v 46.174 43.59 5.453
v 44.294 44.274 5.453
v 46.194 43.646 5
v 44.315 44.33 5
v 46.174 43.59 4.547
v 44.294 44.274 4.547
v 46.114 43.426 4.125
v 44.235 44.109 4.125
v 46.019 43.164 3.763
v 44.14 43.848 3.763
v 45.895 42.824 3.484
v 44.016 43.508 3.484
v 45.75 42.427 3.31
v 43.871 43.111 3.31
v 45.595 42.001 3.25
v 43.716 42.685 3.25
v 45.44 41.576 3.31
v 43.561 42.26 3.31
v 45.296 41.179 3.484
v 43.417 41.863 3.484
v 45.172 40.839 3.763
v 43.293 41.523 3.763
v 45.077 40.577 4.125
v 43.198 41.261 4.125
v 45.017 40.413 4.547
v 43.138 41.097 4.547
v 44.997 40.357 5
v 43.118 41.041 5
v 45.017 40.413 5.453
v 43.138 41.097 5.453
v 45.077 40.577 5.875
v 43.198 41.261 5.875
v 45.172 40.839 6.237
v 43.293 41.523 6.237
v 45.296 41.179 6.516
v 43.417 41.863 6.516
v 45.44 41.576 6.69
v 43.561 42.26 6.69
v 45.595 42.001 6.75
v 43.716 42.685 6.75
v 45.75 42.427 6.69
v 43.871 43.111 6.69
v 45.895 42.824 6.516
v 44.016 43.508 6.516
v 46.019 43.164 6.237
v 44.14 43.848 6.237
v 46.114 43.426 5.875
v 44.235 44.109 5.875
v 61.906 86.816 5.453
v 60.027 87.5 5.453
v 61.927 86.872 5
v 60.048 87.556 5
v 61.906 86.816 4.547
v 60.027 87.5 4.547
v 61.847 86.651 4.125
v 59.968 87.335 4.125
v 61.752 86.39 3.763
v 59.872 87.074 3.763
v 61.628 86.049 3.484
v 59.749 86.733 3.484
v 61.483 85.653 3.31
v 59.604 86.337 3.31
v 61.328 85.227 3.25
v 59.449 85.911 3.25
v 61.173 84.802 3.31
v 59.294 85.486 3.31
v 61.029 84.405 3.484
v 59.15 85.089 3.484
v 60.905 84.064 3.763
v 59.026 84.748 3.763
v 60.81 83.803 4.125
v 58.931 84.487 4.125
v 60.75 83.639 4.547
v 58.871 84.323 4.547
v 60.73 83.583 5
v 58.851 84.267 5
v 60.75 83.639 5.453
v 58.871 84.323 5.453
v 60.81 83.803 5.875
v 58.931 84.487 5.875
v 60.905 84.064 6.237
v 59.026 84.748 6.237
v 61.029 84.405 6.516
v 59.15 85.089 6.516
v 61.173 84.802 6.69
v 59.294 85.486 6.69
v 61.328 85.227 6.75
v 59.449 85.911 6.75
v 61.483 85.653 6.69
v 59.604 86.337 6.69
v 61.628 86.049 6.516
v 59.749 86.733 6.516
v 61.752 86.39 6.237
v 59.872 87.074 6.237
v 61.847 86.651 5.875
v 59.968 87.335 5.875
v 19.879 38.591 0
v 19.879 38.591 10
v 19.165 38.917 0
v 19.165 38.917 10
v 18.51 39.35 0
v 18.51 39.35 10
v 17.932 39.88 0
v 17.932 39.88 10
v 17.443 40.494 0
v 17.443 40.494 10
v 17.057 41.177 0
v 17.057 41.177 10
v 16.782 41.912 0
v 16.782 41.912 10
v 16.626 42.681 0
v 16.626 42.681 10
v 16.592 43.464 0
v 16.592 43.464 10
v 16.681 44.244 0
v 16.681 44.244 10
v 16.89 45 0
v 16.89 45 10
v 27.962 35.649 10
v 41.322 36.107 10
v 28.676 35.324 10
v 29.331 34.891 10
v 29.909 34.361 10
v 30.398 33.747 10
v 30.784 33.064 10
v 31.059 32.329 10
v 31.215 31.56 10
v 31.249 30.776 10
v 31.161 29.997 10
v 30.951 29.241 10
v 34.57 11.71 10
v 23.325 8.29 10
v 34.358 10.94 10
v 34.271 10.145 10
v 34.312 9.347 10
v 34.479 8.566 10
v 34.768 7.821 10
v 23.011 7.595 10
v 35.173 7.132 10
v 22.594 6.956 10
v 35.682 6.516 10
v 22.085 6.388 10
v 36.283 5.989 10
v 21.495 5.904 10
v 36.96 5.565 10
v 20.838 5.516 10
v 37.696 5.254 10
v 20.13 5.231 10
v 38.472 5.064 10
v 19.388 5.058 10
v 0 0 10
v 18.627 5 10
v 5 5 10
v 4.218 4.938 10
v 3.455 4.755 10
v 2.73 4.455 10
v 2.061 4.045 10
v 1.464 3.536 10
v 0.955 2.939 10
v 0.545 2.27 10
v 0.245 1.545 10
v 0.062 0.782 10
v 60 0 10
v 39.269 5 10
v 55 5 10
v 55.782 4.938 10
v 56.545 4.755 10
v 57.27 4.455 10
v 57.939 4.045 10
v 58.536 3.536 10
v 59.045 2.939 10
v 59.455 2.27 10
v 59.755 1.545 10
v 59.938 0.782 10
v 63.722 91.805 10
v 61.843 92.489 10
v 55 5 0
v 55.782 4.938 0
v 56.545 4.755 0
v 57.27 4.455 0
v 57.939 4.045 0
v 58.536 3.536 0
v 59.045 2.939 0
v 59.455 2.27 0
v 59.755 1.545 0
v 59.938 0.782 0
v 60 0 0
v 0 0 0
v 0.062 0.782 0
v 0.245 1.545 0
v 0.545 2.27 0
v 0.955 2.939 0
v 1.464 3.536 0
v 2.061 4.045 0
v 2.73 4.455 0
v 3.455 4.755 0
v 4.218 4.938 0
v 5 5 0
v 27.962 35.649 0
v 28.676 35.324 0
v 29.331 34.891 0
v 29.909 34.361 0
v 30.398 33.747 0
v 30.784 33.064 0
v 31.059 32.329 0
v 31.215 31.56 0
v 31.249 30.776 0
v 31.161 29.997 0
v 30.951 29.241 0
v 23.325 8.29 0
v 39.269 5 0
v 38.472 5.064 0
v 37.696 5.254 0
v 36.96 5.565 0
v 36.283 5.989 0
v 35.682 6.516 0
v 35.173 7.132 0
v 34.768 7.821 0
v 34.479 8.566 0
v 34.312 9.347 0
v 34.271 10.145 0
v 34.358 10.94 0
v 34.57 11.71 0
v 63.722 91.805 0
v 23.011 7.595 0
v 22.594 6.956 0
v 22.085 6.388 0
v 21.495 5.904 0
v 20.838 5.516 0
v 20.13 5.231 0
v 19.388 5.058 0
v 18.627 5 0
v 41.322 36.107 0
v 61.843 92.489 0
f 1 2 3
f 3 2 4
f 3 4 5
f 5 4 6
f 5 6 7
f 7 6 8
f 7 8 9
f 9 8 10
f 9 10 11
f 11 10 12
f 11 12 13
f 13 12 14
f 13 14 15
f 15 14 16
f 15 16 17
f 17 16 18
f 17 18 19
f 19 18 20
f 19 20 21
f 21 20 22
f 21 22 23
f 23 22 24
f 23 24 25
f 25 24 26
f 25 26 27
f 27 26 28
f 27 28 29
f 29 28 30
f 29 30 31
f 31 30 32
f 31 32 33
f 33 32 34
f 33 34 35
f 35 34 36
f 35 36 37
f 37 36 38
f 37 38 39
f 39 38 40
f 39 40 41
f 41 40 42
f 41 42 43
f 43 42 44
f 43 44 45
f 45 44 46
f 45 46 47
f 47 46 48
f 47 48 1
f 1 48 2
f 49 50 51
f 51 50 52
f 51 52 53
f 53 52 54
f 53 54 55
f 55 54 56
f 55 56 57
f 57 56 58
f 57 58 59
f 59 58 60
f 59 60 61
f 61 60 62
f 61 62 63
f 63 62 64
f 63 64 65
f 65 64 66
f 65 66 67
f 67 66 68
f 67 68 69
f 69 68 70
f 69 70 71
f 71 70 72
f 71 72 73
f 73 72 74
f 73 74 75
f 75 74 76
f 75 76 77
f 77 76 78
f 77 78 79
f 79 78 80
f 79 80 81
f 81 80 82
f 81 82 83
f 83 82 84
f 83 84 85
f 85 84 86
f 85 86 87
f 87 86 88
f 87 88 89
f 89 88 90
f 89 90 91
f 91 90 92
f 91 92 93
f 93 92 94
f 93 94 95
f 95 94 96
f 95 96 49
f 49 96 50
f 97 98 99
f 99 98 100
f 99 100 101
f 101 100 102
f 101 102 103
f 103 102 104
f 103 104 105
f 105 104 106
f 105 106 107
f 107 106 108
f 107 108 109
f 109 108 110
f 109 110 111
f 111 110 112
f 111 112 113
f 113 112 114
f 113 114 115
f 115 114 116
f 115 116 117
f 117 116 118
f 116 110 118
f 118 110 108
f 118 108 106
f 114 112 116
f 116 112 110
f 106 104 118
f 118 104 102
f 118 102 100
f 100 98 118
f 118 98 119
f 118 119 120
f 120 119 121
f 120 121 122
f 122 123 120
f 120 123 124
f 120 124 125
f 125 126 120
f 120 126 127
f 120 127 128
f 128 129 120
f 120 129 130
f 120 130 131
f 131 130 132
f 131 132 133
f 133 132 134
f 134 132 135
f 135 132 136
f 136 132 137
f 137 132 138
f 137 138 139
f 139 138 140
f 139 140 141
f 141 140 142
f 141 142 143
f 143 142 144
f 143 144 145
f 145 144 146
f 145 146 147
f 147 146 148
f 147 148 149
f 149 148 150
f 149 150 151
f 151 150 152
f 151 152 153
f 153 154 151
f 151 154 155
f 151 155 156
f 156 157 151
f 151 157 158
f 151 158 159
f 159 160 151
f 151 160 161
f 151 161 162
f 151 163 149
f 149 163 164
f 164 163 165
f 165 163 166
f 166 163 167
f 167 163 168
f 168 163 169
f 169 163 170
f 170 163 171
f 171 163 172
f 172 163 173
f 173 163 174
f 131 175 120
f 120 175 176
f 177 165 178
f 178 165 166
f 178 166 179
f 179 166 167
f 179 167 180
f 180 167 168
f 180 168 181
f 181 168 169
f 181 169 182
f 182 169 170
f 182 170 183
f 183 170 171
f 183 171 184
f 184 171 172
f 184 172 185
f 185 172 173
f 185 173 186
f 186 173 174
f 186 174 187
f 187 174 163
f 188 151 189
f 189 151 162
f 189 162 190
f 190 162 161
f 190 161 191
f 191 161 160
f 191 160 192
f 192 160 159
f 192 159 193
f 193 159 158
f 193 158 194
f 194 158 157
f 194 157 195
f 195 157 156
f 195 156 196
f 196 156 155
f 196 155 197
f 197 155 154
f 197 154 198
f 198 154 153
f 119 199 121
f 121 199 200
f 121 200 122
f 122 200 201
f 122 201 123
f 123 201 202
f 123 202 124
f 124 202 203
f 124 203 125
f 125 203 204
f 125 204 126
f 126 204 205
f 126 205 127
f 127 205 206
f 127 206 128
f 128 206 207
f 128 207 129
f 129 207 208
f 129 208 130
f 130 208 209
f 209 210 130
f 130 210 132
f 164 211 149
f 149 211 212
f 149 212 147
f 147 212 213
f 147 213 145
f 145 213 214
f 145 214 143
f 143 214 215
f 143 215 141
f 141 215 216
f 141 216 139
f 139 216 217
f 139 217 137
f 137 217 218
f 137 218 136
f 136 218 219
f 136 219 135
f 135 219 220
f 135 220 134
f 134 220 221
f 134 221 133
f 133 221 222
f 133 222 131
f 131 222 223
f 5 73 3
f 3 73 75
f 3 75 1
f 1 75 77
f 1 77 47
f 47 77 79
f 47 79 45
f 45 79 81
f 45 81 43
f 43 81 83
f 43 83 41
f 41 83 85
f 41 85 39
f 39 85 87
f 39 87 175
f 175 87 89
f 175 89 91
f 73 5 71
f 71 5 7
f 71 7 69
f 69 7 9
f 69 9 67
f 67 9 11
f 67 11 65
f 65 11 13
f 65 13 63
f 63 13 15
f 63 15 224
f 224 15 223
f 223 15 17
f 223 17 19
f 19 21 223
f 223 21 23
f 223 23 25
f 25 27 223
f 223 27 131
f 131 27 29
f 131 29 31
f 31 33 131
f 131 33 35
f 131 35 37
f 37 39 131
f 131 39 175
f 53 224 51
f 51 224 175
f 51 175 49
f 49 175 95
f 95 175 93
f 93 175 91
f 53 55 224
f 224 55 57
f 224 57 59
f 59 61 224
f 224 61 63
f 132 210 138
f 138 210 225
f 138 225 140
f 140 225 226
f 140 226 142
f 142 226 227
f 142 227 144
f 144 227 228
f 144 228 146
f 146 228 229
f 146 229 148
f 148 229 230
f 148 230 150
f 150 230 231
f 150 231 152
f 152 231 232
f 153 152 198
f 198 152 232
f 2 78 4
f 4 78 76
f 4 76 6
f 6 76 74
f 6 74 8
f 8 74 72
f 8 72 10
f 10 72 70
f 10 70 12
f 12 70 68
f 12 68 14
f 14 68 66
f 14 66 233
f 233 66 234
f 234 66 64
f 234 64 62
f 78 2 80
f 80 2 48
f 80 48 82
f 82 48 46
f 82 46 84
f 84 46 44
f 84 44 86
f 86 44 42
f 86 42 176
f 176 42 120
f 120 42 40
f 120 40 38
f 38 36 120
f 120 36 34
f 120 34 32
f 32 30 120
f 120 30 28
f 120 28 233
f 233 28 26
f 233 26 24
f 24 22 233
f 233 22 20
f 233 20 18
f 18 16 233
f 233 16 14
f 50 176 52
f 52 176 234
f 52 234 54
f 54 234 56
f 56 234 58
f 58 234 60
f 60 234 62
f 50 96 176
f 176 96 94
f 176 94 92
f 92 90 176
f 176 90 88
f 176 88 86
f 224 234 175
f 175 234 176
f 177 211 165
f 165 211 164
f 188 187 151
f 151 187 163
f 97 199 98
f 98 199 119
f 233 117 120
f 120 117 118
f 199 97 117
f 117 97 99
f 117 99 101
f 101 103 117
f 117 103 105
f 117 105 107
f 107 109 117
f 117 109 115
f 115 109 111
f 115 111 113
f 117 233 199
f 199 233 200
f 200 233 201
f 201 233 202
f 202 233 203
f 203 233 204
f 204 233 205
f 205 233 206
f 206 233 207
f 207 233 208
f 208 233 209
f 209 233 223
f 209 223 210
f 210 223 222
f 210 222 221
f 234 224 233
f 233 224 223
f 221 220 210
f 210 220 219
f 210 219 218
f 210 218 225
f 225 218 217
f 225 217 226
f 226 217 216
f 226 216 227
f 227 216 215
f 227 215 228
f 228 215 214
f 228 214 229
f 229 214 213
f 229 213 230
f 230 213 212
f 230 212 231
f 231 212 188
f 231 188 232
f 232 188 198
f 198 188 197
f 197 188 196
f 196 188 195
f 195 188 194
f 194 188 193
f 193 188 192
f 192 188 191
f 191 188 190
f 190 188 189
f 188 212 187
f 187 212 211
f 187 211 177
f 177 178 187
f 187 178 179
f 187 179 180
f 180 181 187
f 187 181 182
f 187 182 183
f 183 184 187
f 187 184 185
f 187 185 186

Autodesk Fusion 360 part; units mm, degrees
sketch "Sketch1" plane through (0, 0, 0) normal (0, 0, 1) x (1, 0, 0)
  line L0 (0, 0) -> (60, 0)
  line L1 (60, 0) -> (60, 5)
  line L2 (60, 5) -> (0, 5)
  line L3 (0, 5) -> (0, 0)
  line L4 (30, 5) -> (30, 45) construction
  line L5 (30, 5) -> (32.128, 5) construction
  line L6 (32.128, 5) -> (63.7225, 91.8051)
  line L7 (32.128, 5) -> (188.367, 5) construction
  line L8 (30, 5) -> (61.8434, 92.489) construction
  line L9 (30, 5) -> (186.3489, 5) construction
  line L10 (41.3222, 36.1075) -> (16.8902, 45)
  line L11 (30, 45) -> (0, 45) construction
  line L12 (16.8902, 45) -> (15.1801, 40.3015)
  line L13 (32.128, 5) -> (22.128, 5) construction
  line L14 (15.1801, 40.3015) -> (39.6121, 31.409) construction
  line L15 (22.128, 5) -> (32.6609, 33.939)
  line L16 (22.128, 5) -> (52.84, 5) construction
  line L17 (41.3222, 36.1075) -> (61.8434, 92.489)
  line L18 (30, 5) -> (32.128, 5) construction
  line L19 (61.8434, 92.489) -> (63.7225, 91.8051)
  line L20 (15.1801, 40.3015) -> (32.6609, 33.939)
  dimension "d1" = 60
  dimension "d2" = 5
  dimension "d3" = 40
  dimension "d4" = 2.128
  dimension "d5" = 70
  dimension "d6" = 70
  dimension "d7" = 26
  dimension "d8" = 5
  dimension "d9" = 10
  dimension "d10" = 70
  dimension "d11" = 60
extrude "Extrude1" add sketch "Sketch1" along normal blind 10
fillet "Fillet1" radius 5 1 edges at (22.128, 5, 5)
fillet "Fillet2" radius 5 1 edges at (32.128, 5, 5)
fillet "Fillet3" radius 5 1 edges at (32.6609, 33.939, 5)
fillet "Fillet4" radius 5 1 edges at (0, 5, 5)
fillet "Fillet5" radius 5 1 edges at (60, 5, 5)
fillet "Fillet6" radius 5 1 edges at (15.1801, 40.3015, 5)
sketch "Sketch2" plane through (24.8837, -9.0569, 0) normal (-0.9397, 0.342, 0) x (-0.342, -0.9397, 0)
  line L0 (-108.063, 0) -> (-48.063, 0)
  line L1 (-48.063, 0) -> (-48.063, 10)
  line L2 (-48.063, 10) -> (-108.063, 10)
  line L3 (-108.063, 10) -> (-108.063, 0)
  line L4 (-108.063, 5) -> (-101.063, 5) construction
  line L5 (-101.063, 5) -> (-55.063, 5) construction
  circle A0 centre (-55.063, 5) radius 1.75
  circle A1 centre (-101.063, 5) radius 1.75
  dimension "d26" = 7
  dimension "d27" = 46
  dimension "d28" = 3.5
  dimension "d29" = 3.5
extrude "Extrude2" cut sketch "Sketch2" against normal blind 2 contours A0 | A1
